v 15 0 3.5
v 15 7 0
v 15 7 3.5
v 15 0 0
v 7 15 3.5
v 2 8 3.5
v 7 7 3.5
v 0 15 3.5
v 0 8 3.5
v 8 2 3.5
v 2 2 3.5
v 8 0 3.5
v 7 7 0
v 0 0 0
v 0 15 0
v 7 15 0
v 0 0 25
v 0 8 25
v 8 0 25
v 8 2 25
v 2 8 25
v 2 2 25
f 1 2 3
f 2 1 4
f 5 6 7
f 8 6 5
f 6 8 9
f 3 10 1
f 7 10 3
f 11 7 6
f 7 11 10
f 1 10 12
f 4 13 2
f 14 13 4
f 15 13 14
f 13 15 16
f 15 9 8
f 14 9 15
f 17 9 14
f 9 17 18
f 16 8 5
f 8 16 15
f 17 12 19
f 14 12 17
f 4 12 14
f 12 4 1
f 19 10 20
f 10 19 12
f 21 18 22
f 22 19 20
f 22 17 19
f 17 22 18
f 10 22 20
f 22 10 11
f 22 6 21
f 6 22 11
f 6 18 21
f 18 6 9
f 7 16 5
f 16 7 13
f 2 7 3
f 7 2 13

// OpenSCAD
// Power Suppy holder

baseWidth = 15;
baseHeight = 3.5;
wallThickness = 2;
wallWidth = 6;
maxHeight = 25;

negativeBase = 8;






difference()
{
    base(baseWidth,baseHeight,wallThickness,maxHeight,wallWidth);
    translate([baseWidth-negativeBase,baseWidth-negativeBase,0])cube([negativeBase,negativeBase,baseHeight]);
}

module base(baseWidth,baseHeight,wallThickness, maxHeight, wallWidth)
{
cube([baseWidth,baseWidth,baseHeight]);
cube([wallWidth+wallThickness,wallThickness,maxHeight]);
cube([wallThickness,wallWidth+wallThickness,maxHeight]);
}
